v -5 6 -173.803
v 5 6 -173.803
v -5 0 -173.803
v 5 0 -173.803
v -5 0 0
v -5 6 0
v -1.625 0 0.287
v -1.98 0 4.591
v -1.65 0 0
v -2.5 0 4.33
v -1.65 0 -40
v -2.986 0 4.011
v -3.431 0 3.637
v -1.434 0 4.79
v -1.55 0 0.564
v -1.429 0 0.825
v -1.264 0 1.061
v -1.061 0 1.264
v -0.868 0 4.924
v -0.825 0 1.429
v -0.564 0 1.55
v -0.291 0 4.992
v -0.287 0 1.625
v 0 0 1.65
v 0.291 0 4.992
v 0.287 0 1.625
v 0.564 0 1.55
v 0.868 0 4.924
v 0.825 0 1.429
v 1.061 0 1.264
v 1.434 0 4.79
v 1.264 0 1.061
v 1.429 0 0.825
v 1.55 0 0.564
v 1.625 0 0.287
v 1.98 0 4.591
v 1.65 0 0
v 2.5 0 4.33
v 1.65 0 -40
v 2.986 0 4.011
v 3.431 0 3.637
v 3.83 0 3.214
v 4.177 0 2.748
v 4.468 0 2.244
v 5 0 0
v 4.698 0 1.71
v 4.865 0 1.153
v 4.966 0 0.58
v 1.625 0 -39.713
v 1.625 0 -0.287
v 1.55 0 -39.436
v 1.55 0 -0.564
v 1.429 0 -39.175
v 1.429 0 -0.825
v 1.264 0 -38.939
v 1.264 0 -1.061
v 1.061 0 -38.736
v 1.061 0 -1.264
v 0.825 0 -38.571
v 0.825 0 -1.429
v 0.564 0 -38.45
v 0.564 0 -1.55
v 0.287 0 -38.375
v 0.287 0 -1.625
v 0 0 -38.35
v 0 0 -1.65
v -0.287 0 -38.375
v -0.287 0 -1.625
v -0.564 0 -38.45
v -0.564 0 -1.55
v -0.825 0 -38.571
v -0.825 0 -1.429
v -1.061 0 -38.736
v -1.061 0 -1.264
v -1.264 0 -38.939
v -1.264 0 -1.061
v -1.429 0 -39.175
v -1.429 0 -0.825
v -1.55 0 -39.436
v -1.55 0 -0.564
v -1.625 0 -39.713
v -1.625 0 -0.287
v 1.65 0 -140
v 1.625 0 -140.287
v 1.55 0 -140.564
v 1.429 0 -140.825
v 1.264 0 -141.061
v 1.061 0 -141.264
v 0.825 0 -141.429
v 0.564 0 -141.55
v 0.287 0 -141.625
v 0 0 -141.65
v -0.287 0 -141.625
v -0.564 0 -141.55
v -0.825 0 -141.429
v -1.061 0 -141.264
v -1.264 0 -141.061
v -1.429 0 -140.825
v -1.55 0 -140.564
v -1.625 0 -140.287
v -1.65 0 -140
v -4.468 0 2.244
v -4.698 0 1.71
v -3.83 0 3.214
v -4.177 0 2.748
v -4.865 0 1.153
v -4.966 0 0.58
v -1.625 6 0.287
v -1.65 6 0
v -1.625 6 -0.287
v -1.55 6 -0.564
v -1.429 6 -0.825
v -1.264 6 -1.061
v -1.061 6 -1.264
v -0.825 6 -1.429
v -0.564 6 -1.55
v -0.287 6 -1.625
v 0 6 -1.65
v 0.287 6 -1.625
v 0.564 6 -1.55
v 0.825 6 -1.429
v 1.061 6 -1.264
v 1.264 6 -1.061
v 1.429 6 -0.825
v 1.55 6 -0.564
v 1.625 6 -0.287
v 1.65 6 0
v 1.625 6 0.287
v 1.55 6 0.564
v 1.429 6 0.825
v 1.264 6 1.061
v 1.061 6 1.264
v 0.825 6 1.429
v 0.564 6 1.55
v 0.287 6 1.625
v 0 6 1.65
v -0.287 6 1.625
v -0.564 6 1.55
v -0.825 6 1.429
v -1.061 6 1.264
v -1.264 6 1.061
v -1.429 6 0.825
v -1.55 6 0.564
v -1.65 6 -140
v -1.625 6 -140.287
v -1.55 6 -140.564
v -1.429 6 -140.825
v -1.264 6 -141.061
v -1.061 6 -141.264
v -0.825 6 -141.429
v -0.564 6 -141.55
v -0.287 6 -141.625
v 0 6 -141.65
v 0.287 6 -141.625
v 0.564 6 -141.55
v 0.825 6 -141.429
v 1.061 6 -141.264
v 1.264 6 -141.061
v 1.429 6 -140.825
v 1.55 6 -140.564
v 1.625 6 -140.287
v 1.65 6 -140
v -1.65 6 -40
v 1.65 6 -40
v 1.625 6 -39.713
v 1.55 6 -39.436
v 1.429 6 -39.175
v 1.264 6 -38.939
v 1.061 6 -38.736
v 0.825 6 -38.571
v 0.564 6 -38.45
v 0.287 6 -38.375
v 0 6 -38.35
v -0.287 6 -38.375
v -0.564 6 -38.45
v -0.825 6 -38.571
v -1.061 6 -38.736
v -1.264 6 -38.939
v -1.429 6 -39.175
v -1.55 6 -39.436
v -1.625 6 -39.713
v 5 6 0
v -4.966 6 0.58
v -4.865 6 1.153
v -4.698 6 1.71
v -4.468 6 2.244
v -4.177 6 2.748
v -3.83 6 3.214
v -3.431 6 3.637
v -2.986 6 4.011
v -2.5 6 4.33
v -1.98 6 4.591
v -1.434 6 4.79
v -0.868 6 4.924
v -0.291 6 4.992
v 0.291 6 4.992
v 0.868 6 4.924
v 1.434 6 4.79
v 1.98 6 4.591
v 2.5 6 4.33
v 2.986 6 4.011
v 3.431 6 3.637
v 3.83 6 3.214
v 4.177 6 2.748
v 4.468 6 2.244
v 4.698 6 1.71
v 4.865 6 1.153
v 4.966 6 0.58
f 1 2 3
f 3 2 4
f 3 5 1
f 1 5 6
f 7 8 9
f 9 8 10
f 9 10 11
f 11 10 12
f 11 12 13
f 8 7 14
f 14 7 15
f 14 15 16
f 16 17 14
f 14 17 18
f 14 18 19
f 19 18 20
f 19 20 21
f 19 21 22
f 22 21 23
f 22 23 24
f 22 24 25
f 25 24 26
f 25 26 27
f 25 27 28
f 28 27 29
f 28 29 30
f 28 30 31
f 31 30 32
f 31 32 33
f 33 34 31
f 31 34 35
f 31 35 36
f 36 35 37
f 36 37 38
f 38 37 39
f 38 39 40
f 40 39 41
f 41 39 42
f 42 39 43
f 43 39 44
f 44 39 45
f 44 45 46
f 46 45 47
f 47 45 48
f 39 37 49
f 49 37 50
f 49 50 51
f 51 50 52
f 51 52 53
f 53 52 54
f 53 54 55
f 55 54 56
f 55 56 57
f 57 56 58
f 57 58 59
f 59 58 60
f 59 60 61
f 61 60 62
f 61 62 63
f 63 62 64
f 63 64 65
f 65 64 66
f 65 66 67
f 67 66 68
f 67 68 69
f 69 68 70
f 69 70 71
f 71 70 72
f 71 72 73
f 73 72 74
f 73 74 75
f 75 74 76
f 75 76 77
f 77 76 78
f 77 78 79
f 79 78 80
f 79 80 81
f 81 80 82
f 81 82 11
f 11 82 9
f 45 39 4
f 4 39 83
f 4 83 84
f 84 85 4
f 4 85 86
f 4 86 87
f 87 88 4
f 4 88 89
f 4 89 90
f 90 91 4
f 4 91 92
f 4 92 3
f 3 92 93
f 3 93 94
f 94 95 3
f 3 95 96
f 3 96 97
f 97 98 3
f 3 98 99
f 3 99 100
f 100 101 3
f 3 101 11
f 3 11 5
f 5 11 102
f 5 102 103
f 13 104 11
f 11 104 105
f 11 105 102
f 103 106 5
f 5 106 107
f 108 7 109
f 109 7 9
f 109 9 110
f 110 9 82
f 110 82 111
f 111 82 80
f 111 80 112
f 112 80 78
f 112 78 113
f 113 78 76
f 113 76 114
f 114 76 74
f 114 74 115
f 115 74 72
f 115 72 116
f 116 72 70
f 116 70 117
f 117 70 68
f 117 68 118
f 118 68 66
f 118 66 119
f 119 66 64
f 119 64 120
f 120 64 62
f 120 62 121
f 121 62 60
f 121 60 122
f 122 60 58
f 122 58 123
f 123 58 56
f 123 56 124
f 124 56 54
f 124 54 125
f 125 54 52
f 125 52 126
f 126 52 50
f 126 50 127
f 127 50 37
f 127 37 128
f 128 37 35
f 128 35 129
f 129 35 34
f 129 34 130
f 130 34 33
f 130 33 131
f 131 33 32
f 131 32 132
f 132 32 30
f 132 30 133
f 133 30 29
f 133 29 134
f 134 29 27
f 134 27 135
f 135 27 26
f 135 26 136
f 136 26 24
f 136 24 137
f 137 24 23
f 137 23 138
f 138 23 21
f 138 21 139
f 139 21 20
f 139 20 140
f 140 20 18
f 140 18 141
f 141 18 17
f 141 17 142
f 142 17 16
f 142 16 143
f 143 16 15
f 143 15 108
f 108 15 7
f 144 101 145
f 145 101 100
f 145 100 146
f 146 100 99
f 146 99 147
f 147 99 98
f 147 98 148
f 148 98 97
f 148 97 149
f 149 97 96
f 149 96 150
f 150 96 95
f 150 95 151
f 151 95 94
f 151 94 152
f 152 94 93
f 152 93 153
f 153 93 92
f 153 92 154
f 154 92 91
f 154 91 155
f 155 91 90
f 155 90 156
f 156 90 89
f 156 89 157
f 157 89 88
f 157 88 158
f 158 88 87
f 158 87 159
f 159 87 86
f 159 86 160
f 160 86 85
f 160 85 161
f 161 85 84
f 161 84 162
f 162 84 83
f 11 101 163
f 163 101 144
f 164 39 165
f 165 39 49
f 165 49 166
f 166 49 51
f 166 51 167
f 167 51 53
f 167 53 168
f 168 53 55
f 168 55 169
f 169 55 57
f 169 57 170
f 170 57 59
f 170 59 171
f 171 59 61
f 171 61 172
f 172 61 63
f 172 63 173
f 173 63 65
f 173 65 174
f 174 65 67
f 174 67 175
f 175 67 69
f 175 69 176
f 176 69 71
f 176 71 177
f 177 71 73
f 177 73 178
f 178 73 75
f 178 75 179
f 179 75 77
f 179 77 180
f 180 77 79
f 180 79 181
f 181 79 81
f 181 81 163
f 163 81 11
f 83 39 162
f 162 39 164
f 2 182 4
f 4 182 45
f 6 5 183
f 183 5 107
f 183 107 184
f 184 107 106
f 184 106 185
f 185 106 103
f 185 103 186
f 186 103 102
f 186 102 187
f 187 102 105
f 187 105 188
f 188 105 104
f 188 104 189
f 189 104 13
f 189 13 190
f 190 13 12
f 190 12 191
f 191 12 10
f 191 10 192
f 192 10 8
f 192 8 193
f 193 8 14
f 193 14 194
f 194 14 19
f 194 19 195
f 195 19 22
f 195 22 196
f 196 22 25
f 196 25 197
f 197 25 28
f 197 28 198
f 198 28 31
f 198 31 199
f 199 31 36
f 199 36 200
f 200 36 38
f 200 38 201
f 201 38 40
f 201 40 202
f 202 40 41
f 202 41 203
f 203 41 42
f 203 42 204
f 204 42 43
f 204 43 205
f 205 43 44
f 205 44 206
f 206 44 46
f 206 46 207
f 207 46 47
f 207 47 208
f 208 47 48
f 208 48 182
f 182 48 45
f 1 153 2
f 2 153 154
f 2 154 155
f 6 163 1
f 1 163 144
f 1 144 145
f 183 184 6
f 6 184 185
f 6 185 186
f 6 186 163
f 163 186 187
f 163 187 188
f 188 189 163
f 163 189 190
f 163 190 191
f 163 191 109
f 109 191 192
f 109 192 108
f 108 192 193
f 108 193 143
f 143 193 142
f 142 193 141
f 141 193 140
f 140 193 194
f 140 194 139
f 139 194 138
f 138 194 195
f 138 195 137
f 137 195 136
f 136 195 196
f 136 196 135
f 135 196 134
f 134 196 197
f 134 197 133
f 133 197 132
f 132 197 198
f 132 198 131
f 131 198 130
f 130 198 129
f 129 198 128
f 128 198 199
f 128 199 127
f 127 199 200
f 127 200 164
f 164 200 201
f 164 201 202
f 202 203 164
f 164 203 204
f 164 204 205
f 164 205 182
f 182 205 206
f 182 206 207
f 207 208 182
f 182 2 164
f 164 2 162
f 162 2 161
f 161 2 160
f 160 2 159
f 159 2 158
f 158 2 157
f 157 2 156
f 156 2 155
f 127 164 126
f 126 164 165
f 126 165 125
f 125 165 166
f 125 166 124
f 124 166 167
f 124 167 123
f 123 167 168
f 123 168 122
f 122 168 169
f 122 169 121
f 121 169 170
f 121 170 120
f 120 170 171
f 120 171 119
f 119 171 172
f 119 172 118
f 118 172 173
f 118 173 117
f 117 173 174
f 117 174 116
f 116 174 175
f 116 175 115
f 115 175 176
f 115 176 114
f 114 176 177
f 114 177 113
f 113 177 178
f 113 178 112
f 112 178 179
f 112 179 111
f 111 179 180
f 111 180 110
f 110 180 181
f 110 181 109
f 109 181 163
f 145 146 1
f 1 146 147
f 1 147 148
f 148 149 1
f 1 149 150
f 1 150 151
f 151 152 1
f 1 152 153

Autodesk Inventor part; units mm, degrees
ref_plane "YZ Plane" through (0, 0, 0) normal (1, 0, 0) x (0, 1, 0)
ref_plane "XZ Plane" through (0, 0, 0) normal (0, 1, 0) x (-1, 0, 0)
ref_plane "XY Plane" through (0, 0, 0) normal (0, 0, 1) x (1, 0, 0)
sketch "Sketch1" plane through (0, 0, 0) normal (0, 1, 0) x (-1, 0, 0)
  line L0 (0, 0) -> (0, -180) construction
  line L1 (5, 0) -> (5, -180)
  line L2 (-5, -180) -> (-5, 0)
  arc A0 (5, 0) -> (-5, 0) centre (0, 0) ccw
  arc A1 (-5, -180) -> (5, -180) centre (0, -180) ccw
  circle A2 centre (0, 0) radius 1.65
  line L3 (0, -40) -> (0, -140) construction
  line L4 (1.65, -40) -> (1.65, -140)
  line L5 (-1.65, -140) -> (-1.65, -40)
  arc A3 (1.65, -40) -> (-1.65, -40) centre (0, -40) ccw
  arc A4 (-1.65, -140) -> (1.65, -140) centre (0, -140) ccw
  point P0 (0, -90)
  point P1 (0, -90)
  dimension "d0" = 180
  dimension "d1" = 10
  dimension "d2" = 3.3
  dimension "d3" = 40
  dimension "d5" = 140
  dimension "d6" = 3.3
extrude "Extrusion1" add sketch "Sketch1" along normal blind 6
sketch "Sketch2" plane through (5, 0, 0) normal (1, 0, 0) x (0, 0, -1)
  line L0 (180, 0) -> (180, 6) projected
  line L1 (0, 0) -> (180, 0) projected
  line L2 (180, 0) -> (180, 6) projected
  line L3 (0, 6) -> (180, 6) projected
  line L4 (0, 0) -> (0, 6) projected
  line L5 (180, 0) -> (180, 0) projected
  line L6 (180, 0) -> (180, 6) projected
  line L7 (180, 6) -> (180, 6) projected
  line L8 (180, 0) -> (180, 6) projected
  line L9 (180, 0) -> (0, 0) projected
  arc A0 (498.004, -84) -> (180, 0) centre (180, -643.9437) ccw
  line L10 (180, 6) -> (0, 6) projected
  arc A1 (498.004, -78) -> (180, 6) centre (180, -637.9437) ccw
  line L11 (498.004, -78) -> (498.004, -84)
  line L12 (0, 0) -> (180, 0) projected
  dimension "d9" = 6
  dimension "d10" = 498.004
  dimension "d11" = 90
extrude "Extrusion2" add sketch "Sketch2" against normal blind 10 contours L0 A1 L11 A0
fillet "Fillet1" radius 2 4 edges at (0, -78, -498.004) (5, -81, -498.004) (-5, -81, -498.004) (0, -84, -498.004)
sketch "Sketch3" plane through (0, 6, 0) normal (0, 1, 0) x (1, 0, 0)
  line L0 (-25.1236, -17.4365) -> (19.1239, -17.4365)
  line L1 (19.1239, -17.4365) -> (19.1239, 173.8027)
  line L2 (19.1239, 173.8027) -> (-25.1236, 173.8027)
  line L3 (-25.1236, 173.8027) -> (-25.1236, -17.4365)
  line L4 (-48.0471, -35.7333) -> (42.457, -35.7333)
  line L5 (42.457, -35.7333) -> (42.457, 337.7497)
  line L6 (42.457, 337.7497) -> (-48.0471, 337.7497)
  line L7 (-48.0471, 337.7497) -> (-48.0471, -35.7333)
  line L8 (-102.0639, -92.3443) -> (98.6132, -92.3443)
  line L9 (98.6132, -92.3443) -> (98.6132, 617.9416)
  line L10 (98.6132, 617.9416) -> (-102.0639, 617.9416)
  line L11 (-102.0639, 617.9416) -> (-102.0639, -92.3443)
  point P0 (0, 0)
extrude "Extrusion3" cut sketch "Sketch3" against normal blind 100 contours L7 L6 L5 L4 | L11 L10 L9 L8
properties part number "Part_8_p3"
